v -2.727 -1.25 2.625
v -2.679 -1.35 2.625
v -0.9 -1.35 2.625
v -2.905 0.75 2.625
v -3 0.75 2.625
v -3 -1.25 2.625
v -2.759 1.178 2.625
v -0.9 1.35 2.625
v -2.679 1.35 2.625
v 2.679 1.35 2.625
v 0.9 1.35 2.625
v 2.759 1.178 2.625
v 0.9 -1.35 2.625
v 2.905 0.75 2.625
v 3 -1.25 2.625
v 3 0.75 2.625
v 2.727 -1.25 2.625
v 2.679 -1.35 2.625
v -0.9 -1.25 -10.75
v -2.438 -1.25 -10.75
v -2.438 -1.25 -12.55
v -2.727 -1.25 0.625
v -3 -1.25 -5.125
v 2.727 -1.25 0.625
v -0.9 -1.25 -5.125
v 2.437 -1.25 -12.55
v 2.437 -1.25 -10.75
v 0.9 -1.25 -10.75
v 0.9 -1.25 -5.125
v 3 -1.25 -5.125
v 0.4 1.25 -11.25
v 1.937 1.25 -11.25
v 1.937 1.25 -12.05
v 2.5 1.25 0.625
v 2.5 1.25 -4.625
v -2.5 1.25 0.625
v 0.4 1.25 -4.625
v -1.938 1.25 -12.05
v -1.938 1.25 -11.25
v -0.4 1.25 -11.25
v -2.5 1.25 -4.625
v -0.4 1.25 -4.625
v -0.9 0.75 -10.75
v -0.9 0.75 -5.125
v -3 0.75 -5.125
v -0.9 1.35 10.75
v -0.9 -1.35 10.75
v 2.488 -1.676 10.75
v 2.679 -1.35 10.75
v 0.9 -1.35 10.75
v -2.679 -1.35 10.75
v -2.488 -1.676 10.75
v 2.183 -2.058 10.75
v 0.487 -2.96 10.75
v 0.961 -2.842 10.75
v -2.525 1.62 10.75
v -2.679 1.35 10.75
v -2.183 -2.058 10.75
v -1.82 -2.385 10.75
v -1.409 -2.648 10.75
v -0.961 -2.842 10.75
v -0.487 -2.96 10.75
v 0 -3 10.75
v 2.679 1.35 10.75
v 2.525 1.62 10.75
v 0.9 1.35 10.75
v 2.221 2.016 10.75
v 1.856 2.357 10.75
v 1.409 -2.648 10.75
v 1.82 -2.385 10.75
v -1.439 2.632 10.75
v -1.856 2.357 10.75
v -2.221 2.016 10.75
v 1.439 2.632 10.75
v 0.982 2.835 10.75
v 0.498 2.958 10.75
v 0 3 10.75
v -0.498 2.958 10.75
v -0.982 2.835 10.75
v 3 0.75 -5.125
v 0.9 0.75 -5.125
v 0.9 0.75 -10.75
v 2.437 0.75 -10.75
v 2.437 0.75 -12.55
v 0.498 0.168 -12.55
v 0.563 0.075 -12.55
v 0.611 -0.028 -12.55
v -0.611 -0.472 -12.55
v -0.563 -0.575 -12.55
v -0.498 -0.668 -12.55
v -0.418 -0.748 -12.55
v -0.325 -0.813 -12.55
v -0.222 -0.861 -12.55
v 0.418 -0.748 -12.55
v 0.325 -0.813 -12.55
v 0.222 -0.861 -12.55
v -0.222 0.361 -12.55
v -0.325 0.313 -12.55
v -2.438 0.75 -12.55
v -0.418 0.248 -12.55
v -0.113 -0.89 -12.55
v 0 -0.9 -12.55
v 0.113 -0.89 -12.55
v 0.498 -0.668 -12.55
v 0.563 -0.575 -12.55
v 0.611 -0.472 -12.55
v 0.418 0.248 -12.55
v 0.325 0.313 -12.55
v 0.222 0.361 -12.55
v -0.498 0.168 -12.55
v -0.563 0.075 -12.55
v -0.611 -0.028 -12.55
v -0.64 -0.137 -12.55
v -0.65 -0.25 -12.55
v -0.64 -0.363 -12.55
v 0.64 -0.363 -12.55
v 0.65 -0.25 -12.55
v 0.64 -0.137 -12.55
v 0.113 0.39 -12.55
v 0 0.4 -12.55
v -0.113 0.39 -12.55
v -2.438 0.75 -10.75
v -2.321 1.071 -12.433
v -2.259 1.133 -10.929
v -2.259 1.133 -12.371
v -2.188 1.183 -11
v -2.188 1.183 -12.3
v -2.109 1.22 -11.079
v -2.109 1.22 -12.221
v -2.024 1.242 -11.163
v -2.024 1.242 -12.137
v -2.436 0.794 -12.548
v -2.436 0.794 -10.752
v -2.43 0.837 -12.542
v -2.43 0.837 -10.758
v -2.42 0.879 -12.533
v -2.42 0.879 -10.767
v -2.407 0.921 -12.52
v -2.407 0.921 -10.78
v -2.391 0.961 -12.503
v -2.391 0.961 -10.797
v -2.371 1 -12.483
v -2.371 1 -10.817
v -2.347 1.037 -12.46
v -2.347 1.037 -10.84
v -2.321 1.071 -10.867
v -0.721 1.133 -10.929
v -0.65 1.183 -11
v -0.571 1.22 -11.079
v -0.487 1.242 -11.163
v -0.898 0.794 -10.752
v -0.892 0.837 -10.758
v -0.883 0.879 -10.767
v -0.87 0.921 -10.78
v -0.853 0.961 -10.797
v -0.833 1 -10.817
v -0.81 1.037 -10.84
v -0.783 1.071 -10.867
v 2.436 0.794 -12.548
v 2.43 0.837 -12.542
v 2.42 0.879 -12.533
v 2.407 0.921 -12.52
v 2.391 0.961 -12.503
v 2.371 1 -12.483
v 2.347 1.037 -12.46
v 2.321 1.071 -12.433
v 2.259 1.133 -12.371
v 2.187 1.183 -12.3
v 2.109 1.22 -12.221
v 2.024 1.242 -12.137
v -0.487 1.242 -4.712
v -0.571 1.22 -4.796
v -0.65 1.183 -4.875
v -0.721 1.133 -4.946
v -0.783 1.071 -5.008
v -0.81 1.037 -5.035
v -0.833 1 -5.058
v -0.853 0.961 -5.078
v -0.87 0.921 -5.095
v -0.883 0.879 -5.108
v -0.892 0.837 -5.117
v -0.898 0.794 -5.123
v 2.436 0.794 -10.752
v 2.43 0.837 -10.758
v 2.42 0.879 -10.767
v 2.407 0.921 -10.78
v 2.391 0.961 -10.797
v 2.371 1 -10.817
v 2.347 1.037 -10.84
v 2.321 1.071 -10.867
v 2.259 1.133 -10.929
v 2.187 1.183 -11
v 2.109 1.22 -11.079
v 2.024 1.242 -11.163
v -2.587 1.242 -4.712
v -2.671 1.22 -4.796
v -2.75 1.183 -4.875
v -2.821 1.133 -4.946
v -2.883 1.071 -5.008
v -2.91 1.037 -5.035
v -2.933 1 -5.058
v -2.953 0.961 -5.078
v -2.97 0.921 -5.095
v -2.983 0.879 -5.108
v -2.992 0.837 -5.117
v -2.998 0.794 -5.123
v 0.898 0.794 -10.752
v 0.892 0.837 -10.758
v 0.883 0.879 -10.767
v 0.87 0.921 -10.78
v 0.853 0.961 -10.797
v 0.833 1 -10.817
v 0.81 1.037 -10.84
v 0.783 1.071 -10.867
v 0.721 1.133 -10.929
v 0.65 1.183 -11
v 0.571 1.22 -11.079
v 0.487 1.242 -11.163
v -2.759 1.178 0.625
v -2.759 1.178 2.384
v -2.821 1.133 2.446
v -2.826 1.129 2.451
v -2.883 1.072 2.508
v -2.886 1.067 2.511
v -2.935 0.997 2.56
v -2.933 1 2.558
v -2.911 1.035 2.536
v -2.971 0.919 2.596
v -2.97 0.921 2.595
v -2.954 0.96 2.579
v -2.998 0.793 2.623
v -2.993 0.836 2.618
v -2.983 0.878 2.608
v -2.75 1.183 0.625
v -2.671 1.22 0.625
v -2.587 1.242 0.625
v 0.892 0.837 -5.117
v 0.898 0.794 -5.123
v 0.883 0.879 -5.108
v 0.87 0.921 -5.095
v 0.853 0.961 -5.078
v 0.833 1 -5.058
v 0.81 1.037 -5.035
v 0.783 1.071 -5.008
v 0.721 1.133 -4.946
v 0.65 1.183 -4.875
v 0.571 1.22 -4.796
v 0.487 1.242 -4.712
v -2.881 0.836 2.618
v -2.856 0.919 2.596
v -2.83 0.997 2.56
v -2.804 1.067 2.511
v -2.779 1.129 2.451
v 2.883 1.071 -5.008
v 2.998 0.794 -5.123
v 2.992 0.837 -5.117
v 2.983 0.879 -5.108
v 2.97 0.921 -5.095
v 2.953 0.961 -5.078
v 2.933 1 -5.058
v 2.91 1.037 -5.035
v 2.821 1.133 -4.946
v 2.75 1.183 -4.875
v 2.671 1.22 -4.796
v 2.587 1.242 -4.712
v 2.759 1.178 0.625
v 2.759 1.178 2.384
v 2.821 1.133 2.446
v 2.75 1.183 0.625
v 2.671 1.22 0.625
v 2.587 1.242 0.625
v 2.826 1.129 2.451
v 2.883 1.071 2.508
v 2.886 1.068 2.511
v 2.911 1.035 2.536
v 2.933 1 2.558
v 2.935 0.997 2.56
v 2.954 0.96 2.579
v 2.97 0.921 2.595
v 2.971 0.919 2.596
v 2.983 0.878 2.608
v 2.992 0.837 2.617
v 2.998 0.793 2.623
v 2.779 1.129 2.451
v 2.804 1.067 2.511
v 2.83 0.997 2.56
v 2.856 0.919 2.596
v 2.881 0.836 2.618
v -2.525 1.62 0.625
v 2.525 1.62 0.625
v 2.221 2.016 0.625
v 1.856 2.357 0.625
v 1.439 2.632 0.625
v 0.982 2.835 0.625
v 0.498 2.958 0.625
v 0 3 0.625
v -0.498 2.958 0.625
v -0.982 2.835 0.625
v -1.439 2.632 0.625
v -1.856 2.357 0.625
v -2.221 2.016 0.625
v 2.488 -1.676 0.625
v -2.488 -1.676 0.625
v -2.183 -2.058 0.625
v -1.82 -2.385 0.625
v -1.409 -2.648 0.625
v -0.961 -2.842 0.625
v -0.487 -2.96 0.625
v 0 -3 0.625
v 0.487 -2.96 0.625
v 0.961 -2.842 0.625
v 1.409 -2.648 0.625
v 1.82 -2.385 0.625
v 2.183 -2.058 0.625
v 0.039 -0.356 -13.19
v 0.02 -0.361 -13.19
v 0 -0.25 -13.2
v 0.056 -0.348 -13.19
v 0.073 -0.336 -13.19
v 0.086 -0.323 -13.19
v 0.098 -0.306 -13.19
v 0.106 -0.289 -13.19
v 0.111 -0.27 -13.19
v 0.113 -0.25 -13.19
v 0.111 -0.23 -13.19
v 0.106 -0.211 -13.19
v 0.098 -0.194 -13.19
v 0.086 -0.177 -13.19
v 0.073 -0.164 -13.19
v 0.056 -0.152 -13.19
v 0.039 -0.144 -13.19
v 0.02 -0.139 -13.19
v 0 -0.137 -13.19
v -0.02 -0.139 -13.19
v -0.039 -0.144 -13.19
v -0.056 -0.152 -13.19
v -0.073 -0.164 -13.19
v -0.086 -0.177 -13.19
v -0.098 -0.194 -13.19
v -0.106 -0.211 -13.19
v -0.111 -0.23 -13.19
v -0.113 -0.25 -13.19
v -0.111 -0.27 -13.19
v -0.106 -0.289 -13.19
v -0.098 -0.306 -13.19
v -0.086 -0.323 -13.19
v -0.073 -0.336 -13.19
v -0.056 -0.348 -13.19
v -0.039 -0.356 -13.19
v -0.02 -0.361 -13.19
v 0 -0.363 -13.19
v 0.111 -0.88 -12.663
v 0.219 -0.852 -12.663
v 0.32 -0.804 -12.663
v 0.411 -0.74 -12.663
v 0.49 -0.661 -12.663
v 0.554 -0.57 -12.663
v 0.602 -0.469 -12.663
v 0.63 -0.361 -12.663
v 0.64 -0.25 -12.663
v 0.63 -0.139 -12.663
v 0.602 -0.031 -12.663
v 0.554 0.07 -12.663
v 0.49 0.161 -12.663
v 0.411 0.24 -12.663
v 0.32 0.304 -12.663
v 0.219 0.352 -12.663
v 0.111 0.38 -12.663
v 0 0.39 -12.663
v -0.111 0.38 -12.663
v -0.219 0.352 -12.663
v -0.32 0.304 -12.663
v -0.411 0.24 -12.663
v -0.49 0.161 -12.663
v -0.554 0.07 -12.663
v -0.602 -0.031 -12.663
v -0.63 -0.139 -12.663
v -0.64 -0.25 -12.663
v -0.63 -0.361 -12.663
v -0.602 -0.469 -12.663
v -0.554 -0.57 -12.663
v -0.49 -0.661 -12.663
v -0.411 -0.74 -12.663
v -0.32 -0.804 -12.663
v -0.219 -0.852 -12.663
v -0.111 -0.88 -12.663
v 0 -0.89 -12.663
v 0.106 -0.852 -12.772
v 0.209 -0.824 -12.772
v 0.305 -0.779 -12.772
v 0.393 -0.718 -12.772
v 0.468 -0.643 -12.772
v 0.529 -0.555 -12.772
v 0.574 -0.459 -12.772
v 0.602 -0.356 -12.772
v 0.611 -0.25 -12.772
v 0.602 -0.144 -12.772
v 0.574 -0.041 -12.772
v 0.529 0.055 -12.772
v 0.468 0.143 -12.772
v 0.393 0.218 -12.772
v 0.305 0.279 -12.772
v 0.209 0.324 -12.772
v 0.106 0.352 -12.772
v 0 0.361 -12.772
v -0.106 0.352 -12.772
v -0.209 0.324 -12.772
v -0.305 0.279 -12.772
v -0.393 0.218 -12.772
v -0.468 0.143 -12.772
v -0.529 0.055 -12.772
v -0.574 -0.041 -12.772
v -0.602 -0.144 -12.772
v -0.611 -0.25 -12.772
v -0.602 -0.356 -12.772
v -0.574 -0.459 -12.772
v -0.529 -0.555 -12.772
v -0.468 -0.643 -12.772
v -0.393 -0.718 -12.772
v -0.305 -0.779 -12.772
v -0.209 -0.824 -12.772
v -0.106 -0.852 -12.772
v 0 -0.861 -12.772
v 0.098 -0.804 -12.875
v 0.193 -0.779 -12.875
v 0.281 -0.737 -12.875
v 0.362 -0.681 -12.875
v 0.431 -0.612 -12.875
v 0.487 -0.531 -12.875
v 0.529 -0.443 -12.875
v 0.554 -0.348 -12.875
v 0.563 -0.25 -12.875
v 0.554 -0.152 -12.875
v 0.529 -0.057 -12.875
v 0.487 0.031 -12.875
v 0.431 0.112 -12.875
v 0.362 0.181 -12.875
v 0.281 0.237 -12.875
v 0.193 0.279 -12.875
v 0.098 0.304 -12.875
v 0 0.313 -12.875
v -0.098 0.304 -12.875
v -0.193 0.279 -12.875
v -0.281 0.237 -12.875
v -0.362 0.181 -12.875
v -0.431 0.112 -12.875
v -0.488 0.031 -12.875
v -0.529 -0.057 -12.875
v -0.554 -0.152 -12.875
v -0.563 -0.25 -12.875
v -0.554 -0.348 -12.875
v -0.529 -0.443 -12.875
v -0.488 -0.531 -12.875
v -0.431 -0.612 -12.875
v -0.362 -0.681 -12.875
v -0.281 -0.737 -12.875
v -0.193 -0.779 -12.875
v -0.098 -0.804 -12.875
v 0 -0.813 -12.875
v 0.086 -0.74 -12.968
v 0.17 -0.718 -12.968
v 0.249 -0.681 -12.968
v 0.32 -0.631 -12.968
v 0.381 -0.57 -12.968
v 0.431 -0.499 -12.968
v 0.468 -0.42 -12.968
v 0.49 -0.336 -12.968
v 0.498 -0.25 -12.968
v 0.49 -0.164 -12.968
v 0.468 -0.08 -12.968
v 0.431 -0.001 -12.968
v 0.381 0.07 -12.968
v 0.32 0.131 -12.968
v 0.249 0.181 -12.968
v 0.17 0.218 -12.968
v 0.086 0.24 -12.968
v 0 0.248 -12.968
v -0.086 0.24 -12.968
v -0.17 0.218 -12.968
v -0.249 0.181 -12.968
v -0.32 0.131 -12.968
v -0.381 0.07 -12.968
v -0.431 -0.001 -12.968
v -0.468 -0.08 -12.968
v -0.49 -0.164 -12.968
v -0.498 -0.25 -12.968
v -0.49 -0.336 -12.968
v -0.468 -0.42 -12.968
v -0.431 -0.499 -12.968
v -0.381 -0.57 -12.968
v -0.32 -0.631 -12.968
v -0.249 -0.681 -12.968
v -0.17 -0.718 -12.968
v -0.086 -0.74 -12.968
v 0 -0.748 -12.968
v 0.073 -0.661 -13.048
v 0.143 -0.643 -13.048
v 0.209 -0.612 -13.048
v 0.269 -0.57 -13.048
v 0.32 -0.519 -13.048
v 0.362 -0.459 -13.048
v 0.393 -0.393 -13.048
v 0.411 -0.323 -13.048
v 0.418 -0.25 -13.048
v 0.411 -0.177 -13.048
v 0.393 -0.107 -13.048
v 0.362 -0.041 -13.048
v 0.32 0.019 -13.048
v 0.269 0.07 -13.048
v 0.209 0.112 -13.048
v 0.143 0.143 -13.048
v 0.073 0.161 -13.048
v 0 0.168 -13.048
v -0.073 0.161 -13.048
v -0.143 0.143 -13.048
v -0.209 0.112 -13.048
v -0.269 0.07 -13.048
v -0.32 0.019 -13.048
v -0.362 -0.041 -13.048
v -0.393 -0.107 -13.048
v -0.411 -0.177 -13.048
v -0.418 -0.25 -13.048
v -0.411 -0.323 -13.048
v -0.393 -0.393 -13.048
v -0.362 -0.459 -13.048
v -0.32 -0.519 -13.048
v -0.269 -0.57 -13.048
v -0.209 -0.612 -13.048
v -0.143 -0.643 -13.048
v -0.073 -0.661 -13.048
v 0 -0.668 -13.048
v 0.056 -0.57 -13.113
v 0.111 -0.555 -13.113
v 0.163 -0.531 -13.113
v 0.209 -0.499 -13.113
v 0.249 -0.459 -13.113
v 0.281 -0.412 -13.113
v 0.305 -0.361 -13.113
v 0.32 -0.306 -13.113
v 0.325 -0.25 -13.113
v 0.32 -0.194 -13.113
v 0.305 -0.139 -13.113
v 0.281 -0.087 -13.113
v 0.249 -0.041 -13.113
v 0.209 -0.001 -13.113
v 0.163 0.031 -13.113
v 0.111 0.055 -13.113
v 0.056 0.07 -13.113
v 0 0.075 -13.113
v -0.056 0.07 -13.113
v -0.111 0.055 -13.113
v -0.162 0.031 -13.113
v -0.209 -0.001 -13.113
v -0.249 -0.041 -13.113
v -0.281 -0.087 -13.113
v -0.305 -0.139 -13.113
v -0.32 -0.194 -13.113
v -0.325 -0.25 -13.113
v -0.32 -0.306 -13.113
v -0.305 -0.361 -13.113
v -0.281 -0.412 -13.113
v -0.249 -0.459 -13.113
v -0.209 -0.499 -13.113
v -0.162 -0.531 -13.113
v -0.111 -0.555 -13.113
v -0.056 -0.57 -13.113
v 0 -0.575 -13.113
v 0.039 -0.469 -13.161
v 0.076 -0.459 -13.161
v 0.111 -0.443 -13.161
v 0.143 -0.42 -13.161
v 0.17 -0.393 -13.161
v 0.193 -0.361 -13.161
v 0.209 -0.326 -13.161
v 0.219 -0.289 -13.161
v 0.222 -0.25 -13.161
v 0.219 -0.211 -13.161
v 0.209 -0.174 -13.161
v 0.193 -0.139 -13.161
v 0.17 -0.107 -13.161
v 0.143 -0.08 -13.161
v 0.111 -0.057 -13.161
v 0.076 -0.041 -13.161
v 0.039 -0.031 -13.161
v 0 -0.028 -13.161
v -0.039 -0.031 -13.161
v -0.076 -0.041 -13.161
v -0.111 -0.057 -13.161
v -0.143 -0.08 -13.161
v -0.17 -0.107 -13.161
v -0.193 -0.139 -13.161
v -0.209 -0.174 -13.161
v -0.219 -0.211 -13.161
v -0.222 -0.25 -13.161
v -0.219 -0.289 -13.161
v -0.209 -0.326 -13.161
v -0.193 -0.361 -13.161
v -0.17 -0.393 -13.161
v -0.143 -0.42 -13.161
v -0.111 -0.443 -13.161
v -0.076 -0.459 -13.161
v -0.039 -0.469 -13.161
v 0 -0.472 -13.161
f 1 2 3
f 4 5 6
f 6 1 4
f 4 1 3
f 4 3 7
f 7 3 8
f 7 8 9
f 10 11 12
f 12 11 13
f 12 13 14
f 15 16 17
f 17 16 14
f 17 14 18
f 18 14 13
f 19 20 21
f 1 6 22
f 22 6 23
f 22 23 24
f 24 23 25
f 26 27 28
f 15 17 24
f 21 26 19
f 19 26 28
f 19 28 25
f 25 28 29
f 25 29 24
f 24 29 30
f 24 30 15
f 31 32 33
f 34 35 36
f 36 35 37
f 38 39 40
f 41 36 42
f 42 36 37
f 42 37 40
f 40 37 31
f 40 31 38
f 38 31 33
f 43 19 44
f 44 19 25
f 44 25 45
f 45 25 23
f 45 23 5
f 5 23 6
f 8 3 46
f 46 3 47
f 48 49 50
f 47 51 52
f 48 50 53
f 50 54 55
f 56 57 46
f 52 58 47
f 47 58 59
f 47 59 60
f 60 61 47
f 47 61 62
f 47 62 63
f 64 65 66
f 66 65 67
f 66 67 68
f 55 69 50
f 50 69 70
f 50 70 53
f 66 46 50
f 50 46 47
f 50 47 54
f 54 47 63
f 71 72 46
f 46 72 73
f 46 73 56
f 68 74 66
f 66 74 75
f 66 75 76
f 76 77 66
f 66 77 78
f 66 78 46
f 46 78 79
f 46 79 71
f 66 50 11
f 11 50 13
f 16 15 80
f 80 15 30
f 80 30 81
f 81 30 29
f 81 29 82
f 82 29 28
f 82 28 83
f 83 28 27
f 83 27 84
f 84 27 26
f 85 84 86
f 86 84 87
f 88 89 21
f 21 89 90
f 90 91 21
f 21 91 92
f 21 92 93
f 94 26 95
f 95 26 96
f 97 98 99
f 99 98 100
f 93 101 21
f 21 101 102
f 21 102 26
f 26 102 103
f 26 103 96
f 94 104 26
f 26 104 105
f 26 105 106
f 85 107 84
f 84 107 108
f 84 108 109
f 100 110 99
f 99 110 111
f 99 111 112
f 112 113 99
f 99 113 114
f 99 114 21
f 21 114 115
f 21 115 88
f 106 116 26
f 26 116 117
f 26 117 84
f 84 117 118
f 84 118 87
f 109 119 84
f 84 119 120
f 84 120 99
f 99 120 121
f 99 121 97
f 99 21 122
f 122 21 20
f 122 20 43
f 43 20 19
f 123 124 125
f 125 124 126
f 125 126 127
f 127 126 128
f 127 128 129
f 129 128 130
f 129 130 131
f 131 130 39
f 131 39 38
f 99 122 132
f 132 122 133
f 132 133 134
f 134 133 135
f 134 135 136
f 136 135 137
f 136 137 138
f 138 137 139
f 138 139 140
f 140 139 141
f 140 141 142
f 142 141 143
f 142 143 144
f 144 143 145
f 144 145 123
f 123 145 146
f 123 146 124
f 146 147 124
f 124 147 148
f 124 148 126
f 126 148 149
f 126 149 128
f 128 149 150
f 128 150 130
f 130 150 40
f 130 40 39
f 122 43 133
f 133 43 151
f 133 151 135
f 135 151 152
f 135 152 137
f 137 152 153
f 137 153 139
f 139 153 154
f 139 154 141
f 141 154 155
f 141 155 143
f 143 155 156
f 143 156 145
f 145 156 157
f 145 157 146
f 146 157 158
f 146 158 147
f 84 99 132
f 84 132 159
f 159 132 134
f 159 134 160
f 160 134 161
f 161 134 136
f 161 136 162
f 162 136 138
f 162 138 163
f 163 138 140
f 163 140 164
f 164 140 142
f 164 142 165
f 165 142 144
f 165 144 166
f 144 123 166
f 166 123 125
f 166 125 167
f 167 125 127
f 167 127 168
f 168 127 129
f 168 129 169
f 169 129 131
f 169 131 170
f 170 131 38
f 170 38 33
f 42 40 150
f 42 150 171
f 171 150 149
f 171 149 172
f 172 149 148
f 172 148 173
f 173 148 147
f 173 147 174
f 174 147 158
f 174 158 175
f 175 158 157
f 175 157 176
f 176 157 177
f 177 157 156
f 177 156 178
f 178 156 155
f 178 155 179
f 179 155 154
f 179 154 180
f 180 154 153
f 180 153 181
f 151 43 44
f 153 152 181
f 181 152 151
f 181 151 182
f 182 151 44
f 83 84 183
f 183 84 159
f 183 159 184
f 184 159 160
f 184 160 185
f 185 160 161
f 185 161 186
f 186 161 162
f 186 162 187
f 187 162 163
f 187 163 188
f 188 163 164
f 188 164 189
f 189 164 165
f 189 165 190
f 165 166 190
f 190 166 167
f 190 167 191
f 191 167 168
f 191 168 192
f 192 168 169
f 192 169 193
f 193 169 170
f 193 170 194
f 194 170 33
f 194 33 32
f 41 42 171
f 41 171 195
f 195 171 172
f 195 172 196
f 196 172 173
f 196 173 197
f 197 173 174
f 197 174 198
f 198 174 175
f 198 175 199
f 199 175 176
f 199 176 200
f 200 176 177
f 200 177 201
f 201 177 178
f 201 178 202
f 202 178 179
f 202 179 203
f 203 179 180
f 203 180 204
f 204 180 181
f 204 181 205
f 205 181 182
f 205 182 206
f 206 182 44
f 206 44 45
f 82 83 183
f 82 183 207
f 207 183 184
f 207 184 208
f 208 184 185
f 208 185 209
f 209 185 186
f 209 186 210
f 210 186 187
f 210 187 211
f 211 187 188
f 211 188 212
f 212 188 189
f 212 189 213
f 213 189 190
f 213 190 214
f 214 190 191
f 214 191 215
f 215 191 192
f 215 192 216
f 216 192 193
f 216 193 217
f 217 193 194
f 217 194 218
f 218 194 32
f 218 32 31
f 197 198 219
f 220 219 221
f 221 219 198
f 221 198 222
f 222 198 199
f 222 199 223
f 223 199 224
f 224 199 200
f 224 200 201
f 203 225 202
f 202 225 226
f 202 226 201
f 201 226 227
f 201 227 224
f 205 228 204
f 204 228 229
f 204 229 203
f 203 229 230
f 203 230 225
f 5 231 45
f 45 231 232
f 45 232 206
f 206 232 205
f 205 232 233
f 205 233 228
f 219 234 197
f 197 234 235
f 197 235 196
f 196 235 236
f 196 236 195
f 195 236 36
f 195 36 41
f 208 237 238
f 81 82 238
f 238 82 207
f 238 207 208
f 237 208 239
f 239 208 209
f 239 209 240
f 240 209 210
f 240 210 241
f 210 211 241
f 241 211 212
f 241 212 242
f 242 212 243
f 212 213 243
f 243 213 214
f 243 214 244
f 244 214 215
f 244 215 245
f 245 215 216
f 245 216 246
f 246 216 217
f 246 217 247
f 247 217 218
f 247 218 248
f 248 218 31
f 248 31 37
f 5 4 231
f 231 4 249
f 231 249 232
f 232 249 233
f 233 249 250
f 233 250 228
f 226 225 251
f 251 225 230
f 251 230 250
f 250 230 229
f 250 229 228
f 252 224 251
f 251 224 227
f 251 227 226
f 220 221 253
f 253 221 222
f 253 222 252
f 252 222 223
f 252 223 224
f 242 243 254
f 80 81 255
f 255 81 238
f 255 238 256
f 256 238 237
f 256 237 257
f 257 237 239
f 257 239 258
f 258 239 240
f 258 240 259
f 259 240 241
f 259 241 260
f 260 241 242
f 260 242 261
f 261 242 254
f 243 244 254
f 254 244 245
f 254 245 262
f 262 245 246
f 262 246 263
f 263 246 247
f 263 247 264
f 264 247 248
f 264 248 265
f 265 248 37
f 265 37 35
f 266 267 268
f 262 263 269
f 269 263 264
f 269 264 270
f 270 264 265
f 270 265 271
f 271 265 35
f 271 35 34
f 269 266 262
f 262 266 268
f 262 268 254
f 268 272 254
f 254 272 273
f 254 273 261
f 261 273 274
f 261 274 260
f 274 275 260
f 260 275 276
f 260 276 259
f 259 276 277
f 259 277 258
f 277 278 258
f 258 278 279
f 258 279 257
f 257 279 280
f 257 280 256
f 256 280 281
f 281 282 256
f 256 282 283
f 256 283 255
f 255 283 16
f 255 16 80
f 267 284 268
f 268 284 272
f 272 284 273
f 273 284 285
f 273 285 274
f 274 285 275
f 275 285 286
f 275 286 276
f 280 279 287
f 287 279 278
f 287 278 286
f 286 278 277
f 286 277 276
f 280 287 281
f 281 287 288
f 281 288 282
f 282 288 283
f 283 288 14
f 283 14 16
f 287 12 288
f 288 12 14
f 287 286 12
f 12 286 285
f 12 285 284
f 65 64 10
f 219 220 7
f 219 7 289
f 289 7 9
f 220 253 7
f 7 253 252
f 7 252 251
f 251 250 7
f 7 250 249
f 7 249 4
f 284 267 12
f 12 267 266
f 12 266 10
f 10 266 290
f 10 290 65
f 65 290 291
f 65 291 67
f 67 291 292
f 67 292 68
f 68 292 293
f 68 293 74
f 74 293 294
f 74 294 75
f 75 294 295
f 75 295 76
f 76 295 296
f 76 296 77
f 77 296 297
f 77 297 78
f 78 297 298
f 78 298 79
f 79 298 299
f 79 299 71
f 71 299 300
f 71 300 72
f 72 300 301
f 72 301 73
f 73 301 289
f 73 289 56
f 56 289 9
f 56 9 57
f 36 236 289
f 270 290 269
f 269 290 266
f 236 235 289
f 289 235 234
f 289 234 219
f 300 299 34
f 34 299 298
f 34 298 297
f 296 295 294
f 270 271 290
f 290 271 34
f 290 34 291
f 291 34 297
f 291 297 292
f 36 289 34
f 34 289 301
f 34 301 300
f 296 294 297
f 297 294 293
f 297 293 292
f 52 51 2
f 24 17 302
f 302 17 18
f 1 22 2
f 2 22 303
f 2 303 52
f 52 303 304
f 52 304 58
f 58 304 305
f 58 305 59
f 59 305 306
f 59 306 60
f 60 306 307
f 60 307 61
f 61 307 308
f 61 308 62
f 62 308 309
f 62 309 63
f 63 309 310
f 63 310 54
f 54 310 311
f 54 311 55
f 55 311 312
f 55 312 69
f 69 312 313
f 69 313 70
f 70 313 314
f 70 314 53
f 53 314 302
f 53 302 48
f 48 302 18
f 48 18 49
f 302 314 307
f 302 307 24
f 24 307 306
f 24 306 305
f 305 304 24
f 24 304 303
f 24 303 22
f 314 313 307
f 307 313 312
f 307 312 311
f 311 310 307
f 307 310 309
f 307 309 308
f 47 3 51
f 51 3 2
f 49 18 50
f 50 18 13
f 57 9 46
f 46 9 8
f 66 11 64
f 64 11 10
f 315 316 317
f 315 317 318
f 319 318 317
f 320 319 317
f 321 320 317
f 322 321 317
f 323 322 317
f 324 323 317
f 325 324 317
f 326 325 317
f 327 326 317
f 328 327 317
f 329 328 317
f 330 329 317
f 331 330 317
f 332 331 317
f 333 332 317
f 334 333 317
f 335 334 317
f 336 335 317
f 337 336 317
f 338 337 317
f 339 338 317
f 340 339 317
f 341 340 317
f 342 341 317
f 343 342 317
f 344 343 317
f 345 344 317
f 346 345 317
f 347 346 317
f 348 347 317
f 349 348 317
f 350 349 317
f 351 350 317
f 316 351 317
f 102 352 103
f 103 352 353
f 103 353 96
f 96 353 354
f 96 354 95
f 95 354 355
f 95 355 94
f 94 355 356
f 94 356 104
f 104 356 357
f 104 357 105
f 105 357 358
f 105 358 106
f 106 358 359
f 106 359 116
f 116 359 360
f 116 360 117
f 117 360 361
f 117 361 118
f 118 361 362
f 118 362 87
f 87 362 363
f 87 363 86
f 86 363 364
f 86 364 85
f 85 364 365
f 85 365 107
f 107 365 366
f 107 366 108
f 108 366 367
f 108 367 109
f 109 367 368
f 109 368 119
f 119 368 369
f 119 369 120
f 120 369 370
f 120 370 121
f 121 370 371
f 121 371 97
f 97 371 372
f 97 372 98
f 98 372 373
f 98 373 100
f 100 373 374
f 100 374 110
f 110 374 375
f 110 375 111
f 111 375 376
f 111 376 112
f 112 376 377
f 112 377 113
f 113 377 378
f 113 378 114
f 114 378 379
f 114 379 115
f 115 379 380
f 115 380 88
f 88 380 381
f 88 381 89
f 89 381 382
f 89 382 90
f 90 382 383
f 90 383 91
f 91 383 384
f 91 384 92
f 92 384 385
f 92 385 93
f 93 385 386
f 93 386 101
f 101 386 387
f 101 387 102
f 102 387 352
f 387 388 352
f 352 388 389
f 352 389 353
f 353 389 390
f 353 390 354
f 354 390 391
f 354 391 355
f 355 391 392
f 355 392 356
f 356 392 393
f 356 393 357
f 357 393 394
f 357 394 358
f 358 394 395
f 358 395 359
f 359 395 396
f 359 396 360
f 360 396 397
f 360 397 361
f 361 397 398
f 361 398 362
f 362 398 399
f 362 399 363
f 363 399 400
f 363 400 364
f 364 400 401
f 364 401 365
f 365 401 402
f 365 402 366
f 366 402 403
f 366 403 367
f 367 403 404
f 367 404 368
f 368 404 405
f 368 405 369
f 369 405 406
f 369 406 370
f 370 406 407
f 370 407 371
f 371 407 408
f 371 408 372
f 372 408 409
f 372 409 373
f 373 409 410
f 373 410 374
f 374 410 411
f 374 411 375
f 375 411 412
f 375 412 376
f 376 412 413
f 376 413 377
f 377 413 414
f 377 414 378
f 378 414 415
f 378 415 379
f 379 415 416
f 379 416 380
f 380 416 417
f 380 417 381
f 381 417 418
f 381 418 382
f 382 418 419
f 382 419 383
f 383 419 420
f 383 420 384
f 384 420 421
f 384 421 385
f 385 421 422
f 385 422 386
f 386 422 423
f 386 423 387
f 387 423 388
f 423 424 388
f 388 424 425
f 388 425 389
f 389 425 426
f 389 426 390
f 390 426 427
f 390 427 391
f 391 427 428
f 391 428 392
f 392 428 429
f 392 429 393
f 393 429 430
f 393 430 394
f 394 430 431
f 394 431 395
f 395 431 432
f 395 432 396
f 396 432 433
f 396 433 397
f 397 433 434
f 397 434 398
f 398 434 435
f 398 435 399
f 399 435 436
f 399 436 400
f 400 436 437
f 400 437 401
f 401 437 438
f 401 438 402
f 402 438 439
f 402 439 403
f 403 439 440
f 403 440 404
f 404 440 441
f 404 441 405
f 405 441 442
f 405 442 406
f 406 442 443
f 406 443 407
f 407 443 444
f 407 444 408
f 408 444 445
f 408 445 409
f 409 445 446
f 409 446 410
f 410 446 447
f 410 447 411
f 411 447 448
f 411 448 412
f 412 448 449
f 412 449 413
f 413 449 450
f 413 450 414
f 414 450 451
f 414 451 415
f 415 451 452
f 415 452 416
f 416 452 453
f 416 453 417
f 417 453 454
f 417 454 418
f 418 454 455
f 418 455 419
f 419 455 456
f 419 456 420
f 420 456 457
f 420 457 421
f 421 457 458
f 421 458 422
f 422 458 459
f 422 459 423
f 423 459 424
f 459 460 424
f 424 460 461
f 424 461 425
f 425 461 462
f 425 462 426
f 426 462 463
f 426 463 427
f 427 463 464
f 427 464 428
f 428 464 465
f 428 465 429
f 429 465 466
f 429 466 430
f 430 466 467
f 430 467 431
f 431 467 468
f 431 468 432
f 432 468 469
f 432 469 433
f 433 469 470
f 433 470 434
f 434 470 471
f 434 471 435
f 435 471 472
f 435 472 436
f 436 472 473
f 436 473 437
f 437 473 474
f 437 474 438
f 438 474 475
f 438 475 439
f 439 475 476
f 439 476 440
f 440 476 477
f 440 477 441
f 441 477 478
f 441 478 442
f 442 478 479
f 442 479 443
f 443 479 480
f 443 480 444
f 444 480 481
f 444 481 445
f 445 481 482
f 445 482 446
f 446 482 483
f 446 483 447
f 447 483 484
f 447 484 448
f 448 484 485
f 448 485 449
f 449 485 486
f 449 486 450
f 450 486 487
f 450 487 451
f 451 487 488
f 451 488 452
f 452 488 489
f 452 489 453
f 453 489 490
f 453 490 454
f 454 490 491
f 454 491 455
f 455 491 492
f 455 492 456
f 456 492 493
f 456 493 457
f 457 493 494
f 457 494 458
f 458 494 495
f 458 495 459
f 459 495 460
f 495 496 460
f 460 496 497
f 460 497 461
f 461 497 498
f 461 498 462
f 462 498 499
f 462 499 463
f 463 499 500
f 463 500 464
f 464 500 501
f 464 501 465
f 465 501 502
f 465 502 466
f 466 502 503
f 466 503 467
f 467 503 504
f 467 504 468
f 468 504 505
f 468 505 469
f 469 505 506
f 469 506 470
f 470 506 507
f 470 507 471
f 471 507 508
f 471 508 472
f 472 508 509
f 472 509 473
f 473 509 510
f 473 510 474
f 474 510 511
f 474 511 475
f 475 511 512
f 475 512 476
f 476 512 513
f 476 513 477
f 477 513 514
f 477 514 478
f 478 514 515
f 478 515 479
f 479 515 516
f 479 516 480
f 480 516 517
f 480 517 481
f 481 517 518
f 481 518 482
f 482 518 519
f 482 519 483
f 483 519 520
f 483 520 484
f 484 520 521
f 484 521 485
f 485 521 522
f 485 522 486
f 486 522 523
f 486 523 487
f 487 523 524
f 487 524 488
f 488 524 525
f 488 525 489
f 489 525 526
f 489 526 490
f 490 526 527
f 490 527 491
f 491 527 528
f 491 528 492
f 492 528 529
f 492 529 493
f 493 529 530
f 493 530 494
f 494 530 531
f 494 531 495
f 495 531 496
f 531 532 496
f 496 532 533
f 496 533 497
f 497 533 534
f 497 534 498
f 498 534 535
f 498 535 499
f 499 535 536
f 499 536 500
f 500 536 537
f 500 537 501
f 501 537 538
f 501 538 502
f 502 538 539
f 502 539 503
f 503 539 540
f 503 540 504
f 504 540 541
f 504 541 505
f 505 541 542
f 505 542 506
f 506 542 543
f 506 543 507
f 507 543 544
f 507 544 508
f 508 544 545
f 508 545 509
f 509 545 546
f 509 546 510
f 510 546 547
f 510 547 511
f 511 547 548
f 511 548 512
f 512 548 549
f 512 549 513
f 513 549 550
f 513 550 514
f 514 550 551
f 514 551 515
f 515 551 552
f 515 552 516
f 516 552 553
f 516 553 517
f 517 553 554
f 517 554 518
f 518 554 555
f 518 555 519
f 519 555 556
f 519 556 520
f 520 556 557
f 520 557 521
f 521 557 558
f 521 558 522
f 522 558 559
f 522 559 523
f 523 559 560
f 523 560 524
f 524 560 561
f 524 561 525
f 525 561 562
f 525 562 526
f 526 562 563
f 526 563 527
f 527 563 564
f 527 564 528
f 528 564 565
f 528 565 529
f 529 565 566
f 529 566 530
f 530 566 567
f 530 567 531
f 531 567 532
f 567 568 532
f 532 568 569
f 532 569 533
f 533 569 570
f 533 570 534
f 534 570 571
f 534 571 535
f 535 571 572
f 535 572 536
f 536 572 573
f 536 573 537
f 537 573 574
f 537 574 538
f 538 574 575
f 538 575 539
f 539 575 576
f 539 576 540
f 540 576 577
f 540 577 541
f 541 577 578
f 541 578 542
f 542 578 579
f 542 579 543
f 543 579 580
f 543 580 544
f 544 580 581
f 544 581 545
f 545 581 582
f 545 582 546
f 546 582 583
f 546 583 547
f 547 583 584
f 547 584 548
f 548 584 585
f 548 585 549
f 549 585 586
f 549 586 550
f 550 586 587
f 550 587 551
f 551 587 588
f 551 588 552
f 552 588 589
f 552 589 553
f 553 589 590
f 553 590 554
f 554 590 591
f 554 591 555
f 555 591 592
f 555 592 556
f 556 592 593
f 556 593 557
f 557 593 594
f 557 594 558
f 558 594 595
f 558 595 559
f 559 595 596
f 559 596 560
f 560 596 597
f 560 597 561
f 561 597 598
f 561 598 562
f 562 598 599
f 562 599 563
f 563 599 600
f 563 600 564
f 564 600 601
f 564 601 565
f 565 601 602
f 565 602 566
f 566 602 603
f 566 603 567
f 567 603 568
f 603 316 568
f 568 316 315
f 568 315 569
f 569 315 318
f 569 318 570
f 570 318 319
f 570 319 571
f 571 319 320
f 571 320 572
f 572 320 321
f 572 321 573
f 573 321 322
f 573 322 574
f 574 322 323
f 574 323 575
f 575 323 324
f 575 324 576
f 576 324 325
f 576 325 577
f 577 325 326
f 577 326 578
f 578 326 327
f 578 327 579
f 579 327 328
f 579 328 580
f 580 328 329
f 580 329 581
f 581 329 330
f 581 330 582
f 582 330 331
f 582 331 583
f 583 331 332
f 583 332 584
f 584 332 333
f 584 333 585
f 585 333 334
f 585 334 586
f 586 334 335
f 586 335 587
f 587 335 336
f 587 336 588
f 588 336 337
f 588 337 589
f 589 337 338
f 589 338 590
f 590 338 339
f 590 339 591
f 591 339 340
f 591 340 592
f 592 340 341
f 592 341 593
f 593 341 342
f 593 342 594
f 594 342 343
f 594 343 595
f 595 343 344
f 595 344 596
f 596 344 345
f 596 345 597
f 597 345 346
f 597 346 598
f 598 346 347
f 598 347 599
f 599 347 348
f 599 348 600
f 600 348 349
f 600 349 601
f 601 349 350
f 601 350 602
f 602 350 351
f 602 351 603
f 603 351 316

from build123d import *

# Parameters (mm, degrees)
SKETCH1_W           = 1.8
SKETCH1_H           = 21.5
SKETCH1_H_2         = 5.625
SKETCH1_W_2         = 2.1
SKETCH1_H_3         = 7.75
SKETCH1_H_4         = 8.125
BOSS_EXTRUDE1_DEPTH = 1.25
FILLET1_R           = 0.5
BOSS_EXTRUDE2_DEPTH = 2
SKETCH4_W           = 1.8
SKETCH4_H           = 0.1
BOSS_EXTRUDE3_DEPTH = 8.125


with BuildPart() as part:
    # Sketch1 → Boss-Extrude1 (new body, symmetric)
    with BuildSketch(Plane(origin=(0, 0, 0), x_dir=(1, 0, 0), z_dir=(0, 1, 0))):
        Rectangle(SKETCH1_W, SKETCH1_H)
        Polygon((-2.4375, 10.75), (-0.9, 10.75), (0.9, 10.75), (2.4375, 10.75), (2.4375, 12.55), (-2.4375, 12.55), align=None)
        with Locations((0, 7.9375)):
            Rectangle(SKETCH1_W, SKETCH1_H_2)
        with Locations((-1.95, 1.25)):
            Rectangle(SKETCH1_W_2, SKETCH1_H_3)
        with Locations((1.95, 1.25)):
            Rectangle(SKETCH1_W_2, SKETCH1_H_3)
        with Locations((0, -6.6875)):
            Rectangle(SKETCH1_W, SKETCH1_H_4)
    extrude(amount=BOSS_EXTRUDE1_DEPTH, both=True)

    # Fillet1
    fillet1_edges = [part.edges().sort_by_distance(p)[0] for p in [
        (-1.95, 1.25, -5.125),
        (-3, 1.25, -1.25),
        (-1.95, 1.25, 2.625),
        (-0.9, 1.25, 6.6875),
        (0, 1.25, 10.75),
        (0.9, 1.25, 6.6875),
        (1.95, 1.25, 2.625),
        (3, 1.25, -1.25),
        (-0.9, 1.25, -7.9375),
        (1.95, 1.25, -5.125),
        (0.9, 1.25, -7.9375),
        (1.66875, 1.25, -10.75),
        (2.4375, 1.25, -11.65),
        (0, 1.25, -12.55),
        (-2.4375, 1.25, -11.65),
        (-1.66875, 1.25, -10.75),
    ]]
    fillet(fillet1_edges, radius=FILLET1_R)

    # Sketch3 → Boss-Extrude2 (add)
    with BuildSketch(Plane.XY.offset(2.625)):
        with BuildLine():
            ThreePointArc((2.90473751, 0.75), (0, 3), (-2.90473751, 0.75))
            Line((-2.90473751, 0.75), (-0.9, 0.75))
            Line((-0.9, 0.75), (0.9, 0.75))
            Line((0.9, 0.75), (2.90473751, 0.75))
        make_face()
        with BuildLine():
            Line((2.727178029, -1.25), (0.9, -1.25))
            Line((0.9, -1.25), (-0.9, -1.25))
            Line((-0.9, -1.25), (-2.727178029, -1.25))
            ThreePointArc((-2.727178029, -1.25), (0, -3), (2.727178029, -1.25))
        make_face()
    extrude(amount=-BOSS_EXTRUDE2_DEPTH)

    # Sketch4 → Boss-Extrude3 (add)
    with BuildSketch(Plane.XY.offset(2.625)):
        with BuildLine():
            ThreePointArc((2.679085665, 1.35), (0, 3), (-2.679085665, 1.35))
            Line((-2.679085665, 1.35), (-0.9, 1.35))
            Line((-0.9, 1.35), (0.9, 1.35))
            Line((0.9, 1.35), (2.679085665, 1.35))
        make_face()
        with BuildLine():
            Line((0.9, -1.35), (-0.9, -1.35))
            Line((-0.9, -1.35), (-2.679085665, -1.35))
            ThreePointArc((-2.679085665, -1.35), (0, -3), (2.679085665, -1.35))
            Line((2.679085665, -1.35), (0.9, -1.35))
        make_face()
        with BuildLine():
            Line((0.9, -1.25), (-0.9, -1.25))
            Line((-0.9, -1.25), (-0.9, 0.75))
            ThreePointArc((-0.9, 0.75), (-0.753553391, 1.103553391), (-0.4, 1.25))
            Line((-0.4, 1.25), (0.4, 1.25))
            ThreePointArc((0.4, 1.25), (0.753553391, 1.103553391), (0.9, 0.75))
            Line((0.9, 0.75), (0.9, -1.25))
        make_face()
        with BuildLine():
            Line((0.9, 1.35), (-0.9, 1.35))
            Line((-0.9, 1.35), (-0.9, 0.75))
            ThreePointArc((-0.9, 0.75), (-0.753553391, 1.103553391), (-0.4, 1.25))
            Line((-0.4, 1.25), (0.4, 1.25))
            ThreePointArc((0.4, 1.25), (0.753553391, 1.103553391), (0.9, 0.75))
            Line((0.9, 0.75), (0.9, 1.35))
        make_face()
        with Locations((0, -1.3)):
            Rectangle(SKETCH4_W, SKETCH4_H)
    extrude(amount=BOSS_EXTRUDE3_DEPTH)

    # Sketch5 one side → Revolve1 (revolve)
    with BuildSketch(Plane(origin=(0, 0, 0), x_dir=(0, 0, -1), z_dir=(1, 0, 0))):
        with BuildLine():
            Line((12.55, -0.25), (13.2, -0.25))
            ThreePointArc((13.2, -0.25), (13.009619408, 0.209619408), (12.55, 0.4))
            Line((12.55, 0.4), (12.55, -0.25))
        make_face()
    revolve(axis=Axis((0, -0.25, -12.55), (0, 0, -1)))


solid = part.part
